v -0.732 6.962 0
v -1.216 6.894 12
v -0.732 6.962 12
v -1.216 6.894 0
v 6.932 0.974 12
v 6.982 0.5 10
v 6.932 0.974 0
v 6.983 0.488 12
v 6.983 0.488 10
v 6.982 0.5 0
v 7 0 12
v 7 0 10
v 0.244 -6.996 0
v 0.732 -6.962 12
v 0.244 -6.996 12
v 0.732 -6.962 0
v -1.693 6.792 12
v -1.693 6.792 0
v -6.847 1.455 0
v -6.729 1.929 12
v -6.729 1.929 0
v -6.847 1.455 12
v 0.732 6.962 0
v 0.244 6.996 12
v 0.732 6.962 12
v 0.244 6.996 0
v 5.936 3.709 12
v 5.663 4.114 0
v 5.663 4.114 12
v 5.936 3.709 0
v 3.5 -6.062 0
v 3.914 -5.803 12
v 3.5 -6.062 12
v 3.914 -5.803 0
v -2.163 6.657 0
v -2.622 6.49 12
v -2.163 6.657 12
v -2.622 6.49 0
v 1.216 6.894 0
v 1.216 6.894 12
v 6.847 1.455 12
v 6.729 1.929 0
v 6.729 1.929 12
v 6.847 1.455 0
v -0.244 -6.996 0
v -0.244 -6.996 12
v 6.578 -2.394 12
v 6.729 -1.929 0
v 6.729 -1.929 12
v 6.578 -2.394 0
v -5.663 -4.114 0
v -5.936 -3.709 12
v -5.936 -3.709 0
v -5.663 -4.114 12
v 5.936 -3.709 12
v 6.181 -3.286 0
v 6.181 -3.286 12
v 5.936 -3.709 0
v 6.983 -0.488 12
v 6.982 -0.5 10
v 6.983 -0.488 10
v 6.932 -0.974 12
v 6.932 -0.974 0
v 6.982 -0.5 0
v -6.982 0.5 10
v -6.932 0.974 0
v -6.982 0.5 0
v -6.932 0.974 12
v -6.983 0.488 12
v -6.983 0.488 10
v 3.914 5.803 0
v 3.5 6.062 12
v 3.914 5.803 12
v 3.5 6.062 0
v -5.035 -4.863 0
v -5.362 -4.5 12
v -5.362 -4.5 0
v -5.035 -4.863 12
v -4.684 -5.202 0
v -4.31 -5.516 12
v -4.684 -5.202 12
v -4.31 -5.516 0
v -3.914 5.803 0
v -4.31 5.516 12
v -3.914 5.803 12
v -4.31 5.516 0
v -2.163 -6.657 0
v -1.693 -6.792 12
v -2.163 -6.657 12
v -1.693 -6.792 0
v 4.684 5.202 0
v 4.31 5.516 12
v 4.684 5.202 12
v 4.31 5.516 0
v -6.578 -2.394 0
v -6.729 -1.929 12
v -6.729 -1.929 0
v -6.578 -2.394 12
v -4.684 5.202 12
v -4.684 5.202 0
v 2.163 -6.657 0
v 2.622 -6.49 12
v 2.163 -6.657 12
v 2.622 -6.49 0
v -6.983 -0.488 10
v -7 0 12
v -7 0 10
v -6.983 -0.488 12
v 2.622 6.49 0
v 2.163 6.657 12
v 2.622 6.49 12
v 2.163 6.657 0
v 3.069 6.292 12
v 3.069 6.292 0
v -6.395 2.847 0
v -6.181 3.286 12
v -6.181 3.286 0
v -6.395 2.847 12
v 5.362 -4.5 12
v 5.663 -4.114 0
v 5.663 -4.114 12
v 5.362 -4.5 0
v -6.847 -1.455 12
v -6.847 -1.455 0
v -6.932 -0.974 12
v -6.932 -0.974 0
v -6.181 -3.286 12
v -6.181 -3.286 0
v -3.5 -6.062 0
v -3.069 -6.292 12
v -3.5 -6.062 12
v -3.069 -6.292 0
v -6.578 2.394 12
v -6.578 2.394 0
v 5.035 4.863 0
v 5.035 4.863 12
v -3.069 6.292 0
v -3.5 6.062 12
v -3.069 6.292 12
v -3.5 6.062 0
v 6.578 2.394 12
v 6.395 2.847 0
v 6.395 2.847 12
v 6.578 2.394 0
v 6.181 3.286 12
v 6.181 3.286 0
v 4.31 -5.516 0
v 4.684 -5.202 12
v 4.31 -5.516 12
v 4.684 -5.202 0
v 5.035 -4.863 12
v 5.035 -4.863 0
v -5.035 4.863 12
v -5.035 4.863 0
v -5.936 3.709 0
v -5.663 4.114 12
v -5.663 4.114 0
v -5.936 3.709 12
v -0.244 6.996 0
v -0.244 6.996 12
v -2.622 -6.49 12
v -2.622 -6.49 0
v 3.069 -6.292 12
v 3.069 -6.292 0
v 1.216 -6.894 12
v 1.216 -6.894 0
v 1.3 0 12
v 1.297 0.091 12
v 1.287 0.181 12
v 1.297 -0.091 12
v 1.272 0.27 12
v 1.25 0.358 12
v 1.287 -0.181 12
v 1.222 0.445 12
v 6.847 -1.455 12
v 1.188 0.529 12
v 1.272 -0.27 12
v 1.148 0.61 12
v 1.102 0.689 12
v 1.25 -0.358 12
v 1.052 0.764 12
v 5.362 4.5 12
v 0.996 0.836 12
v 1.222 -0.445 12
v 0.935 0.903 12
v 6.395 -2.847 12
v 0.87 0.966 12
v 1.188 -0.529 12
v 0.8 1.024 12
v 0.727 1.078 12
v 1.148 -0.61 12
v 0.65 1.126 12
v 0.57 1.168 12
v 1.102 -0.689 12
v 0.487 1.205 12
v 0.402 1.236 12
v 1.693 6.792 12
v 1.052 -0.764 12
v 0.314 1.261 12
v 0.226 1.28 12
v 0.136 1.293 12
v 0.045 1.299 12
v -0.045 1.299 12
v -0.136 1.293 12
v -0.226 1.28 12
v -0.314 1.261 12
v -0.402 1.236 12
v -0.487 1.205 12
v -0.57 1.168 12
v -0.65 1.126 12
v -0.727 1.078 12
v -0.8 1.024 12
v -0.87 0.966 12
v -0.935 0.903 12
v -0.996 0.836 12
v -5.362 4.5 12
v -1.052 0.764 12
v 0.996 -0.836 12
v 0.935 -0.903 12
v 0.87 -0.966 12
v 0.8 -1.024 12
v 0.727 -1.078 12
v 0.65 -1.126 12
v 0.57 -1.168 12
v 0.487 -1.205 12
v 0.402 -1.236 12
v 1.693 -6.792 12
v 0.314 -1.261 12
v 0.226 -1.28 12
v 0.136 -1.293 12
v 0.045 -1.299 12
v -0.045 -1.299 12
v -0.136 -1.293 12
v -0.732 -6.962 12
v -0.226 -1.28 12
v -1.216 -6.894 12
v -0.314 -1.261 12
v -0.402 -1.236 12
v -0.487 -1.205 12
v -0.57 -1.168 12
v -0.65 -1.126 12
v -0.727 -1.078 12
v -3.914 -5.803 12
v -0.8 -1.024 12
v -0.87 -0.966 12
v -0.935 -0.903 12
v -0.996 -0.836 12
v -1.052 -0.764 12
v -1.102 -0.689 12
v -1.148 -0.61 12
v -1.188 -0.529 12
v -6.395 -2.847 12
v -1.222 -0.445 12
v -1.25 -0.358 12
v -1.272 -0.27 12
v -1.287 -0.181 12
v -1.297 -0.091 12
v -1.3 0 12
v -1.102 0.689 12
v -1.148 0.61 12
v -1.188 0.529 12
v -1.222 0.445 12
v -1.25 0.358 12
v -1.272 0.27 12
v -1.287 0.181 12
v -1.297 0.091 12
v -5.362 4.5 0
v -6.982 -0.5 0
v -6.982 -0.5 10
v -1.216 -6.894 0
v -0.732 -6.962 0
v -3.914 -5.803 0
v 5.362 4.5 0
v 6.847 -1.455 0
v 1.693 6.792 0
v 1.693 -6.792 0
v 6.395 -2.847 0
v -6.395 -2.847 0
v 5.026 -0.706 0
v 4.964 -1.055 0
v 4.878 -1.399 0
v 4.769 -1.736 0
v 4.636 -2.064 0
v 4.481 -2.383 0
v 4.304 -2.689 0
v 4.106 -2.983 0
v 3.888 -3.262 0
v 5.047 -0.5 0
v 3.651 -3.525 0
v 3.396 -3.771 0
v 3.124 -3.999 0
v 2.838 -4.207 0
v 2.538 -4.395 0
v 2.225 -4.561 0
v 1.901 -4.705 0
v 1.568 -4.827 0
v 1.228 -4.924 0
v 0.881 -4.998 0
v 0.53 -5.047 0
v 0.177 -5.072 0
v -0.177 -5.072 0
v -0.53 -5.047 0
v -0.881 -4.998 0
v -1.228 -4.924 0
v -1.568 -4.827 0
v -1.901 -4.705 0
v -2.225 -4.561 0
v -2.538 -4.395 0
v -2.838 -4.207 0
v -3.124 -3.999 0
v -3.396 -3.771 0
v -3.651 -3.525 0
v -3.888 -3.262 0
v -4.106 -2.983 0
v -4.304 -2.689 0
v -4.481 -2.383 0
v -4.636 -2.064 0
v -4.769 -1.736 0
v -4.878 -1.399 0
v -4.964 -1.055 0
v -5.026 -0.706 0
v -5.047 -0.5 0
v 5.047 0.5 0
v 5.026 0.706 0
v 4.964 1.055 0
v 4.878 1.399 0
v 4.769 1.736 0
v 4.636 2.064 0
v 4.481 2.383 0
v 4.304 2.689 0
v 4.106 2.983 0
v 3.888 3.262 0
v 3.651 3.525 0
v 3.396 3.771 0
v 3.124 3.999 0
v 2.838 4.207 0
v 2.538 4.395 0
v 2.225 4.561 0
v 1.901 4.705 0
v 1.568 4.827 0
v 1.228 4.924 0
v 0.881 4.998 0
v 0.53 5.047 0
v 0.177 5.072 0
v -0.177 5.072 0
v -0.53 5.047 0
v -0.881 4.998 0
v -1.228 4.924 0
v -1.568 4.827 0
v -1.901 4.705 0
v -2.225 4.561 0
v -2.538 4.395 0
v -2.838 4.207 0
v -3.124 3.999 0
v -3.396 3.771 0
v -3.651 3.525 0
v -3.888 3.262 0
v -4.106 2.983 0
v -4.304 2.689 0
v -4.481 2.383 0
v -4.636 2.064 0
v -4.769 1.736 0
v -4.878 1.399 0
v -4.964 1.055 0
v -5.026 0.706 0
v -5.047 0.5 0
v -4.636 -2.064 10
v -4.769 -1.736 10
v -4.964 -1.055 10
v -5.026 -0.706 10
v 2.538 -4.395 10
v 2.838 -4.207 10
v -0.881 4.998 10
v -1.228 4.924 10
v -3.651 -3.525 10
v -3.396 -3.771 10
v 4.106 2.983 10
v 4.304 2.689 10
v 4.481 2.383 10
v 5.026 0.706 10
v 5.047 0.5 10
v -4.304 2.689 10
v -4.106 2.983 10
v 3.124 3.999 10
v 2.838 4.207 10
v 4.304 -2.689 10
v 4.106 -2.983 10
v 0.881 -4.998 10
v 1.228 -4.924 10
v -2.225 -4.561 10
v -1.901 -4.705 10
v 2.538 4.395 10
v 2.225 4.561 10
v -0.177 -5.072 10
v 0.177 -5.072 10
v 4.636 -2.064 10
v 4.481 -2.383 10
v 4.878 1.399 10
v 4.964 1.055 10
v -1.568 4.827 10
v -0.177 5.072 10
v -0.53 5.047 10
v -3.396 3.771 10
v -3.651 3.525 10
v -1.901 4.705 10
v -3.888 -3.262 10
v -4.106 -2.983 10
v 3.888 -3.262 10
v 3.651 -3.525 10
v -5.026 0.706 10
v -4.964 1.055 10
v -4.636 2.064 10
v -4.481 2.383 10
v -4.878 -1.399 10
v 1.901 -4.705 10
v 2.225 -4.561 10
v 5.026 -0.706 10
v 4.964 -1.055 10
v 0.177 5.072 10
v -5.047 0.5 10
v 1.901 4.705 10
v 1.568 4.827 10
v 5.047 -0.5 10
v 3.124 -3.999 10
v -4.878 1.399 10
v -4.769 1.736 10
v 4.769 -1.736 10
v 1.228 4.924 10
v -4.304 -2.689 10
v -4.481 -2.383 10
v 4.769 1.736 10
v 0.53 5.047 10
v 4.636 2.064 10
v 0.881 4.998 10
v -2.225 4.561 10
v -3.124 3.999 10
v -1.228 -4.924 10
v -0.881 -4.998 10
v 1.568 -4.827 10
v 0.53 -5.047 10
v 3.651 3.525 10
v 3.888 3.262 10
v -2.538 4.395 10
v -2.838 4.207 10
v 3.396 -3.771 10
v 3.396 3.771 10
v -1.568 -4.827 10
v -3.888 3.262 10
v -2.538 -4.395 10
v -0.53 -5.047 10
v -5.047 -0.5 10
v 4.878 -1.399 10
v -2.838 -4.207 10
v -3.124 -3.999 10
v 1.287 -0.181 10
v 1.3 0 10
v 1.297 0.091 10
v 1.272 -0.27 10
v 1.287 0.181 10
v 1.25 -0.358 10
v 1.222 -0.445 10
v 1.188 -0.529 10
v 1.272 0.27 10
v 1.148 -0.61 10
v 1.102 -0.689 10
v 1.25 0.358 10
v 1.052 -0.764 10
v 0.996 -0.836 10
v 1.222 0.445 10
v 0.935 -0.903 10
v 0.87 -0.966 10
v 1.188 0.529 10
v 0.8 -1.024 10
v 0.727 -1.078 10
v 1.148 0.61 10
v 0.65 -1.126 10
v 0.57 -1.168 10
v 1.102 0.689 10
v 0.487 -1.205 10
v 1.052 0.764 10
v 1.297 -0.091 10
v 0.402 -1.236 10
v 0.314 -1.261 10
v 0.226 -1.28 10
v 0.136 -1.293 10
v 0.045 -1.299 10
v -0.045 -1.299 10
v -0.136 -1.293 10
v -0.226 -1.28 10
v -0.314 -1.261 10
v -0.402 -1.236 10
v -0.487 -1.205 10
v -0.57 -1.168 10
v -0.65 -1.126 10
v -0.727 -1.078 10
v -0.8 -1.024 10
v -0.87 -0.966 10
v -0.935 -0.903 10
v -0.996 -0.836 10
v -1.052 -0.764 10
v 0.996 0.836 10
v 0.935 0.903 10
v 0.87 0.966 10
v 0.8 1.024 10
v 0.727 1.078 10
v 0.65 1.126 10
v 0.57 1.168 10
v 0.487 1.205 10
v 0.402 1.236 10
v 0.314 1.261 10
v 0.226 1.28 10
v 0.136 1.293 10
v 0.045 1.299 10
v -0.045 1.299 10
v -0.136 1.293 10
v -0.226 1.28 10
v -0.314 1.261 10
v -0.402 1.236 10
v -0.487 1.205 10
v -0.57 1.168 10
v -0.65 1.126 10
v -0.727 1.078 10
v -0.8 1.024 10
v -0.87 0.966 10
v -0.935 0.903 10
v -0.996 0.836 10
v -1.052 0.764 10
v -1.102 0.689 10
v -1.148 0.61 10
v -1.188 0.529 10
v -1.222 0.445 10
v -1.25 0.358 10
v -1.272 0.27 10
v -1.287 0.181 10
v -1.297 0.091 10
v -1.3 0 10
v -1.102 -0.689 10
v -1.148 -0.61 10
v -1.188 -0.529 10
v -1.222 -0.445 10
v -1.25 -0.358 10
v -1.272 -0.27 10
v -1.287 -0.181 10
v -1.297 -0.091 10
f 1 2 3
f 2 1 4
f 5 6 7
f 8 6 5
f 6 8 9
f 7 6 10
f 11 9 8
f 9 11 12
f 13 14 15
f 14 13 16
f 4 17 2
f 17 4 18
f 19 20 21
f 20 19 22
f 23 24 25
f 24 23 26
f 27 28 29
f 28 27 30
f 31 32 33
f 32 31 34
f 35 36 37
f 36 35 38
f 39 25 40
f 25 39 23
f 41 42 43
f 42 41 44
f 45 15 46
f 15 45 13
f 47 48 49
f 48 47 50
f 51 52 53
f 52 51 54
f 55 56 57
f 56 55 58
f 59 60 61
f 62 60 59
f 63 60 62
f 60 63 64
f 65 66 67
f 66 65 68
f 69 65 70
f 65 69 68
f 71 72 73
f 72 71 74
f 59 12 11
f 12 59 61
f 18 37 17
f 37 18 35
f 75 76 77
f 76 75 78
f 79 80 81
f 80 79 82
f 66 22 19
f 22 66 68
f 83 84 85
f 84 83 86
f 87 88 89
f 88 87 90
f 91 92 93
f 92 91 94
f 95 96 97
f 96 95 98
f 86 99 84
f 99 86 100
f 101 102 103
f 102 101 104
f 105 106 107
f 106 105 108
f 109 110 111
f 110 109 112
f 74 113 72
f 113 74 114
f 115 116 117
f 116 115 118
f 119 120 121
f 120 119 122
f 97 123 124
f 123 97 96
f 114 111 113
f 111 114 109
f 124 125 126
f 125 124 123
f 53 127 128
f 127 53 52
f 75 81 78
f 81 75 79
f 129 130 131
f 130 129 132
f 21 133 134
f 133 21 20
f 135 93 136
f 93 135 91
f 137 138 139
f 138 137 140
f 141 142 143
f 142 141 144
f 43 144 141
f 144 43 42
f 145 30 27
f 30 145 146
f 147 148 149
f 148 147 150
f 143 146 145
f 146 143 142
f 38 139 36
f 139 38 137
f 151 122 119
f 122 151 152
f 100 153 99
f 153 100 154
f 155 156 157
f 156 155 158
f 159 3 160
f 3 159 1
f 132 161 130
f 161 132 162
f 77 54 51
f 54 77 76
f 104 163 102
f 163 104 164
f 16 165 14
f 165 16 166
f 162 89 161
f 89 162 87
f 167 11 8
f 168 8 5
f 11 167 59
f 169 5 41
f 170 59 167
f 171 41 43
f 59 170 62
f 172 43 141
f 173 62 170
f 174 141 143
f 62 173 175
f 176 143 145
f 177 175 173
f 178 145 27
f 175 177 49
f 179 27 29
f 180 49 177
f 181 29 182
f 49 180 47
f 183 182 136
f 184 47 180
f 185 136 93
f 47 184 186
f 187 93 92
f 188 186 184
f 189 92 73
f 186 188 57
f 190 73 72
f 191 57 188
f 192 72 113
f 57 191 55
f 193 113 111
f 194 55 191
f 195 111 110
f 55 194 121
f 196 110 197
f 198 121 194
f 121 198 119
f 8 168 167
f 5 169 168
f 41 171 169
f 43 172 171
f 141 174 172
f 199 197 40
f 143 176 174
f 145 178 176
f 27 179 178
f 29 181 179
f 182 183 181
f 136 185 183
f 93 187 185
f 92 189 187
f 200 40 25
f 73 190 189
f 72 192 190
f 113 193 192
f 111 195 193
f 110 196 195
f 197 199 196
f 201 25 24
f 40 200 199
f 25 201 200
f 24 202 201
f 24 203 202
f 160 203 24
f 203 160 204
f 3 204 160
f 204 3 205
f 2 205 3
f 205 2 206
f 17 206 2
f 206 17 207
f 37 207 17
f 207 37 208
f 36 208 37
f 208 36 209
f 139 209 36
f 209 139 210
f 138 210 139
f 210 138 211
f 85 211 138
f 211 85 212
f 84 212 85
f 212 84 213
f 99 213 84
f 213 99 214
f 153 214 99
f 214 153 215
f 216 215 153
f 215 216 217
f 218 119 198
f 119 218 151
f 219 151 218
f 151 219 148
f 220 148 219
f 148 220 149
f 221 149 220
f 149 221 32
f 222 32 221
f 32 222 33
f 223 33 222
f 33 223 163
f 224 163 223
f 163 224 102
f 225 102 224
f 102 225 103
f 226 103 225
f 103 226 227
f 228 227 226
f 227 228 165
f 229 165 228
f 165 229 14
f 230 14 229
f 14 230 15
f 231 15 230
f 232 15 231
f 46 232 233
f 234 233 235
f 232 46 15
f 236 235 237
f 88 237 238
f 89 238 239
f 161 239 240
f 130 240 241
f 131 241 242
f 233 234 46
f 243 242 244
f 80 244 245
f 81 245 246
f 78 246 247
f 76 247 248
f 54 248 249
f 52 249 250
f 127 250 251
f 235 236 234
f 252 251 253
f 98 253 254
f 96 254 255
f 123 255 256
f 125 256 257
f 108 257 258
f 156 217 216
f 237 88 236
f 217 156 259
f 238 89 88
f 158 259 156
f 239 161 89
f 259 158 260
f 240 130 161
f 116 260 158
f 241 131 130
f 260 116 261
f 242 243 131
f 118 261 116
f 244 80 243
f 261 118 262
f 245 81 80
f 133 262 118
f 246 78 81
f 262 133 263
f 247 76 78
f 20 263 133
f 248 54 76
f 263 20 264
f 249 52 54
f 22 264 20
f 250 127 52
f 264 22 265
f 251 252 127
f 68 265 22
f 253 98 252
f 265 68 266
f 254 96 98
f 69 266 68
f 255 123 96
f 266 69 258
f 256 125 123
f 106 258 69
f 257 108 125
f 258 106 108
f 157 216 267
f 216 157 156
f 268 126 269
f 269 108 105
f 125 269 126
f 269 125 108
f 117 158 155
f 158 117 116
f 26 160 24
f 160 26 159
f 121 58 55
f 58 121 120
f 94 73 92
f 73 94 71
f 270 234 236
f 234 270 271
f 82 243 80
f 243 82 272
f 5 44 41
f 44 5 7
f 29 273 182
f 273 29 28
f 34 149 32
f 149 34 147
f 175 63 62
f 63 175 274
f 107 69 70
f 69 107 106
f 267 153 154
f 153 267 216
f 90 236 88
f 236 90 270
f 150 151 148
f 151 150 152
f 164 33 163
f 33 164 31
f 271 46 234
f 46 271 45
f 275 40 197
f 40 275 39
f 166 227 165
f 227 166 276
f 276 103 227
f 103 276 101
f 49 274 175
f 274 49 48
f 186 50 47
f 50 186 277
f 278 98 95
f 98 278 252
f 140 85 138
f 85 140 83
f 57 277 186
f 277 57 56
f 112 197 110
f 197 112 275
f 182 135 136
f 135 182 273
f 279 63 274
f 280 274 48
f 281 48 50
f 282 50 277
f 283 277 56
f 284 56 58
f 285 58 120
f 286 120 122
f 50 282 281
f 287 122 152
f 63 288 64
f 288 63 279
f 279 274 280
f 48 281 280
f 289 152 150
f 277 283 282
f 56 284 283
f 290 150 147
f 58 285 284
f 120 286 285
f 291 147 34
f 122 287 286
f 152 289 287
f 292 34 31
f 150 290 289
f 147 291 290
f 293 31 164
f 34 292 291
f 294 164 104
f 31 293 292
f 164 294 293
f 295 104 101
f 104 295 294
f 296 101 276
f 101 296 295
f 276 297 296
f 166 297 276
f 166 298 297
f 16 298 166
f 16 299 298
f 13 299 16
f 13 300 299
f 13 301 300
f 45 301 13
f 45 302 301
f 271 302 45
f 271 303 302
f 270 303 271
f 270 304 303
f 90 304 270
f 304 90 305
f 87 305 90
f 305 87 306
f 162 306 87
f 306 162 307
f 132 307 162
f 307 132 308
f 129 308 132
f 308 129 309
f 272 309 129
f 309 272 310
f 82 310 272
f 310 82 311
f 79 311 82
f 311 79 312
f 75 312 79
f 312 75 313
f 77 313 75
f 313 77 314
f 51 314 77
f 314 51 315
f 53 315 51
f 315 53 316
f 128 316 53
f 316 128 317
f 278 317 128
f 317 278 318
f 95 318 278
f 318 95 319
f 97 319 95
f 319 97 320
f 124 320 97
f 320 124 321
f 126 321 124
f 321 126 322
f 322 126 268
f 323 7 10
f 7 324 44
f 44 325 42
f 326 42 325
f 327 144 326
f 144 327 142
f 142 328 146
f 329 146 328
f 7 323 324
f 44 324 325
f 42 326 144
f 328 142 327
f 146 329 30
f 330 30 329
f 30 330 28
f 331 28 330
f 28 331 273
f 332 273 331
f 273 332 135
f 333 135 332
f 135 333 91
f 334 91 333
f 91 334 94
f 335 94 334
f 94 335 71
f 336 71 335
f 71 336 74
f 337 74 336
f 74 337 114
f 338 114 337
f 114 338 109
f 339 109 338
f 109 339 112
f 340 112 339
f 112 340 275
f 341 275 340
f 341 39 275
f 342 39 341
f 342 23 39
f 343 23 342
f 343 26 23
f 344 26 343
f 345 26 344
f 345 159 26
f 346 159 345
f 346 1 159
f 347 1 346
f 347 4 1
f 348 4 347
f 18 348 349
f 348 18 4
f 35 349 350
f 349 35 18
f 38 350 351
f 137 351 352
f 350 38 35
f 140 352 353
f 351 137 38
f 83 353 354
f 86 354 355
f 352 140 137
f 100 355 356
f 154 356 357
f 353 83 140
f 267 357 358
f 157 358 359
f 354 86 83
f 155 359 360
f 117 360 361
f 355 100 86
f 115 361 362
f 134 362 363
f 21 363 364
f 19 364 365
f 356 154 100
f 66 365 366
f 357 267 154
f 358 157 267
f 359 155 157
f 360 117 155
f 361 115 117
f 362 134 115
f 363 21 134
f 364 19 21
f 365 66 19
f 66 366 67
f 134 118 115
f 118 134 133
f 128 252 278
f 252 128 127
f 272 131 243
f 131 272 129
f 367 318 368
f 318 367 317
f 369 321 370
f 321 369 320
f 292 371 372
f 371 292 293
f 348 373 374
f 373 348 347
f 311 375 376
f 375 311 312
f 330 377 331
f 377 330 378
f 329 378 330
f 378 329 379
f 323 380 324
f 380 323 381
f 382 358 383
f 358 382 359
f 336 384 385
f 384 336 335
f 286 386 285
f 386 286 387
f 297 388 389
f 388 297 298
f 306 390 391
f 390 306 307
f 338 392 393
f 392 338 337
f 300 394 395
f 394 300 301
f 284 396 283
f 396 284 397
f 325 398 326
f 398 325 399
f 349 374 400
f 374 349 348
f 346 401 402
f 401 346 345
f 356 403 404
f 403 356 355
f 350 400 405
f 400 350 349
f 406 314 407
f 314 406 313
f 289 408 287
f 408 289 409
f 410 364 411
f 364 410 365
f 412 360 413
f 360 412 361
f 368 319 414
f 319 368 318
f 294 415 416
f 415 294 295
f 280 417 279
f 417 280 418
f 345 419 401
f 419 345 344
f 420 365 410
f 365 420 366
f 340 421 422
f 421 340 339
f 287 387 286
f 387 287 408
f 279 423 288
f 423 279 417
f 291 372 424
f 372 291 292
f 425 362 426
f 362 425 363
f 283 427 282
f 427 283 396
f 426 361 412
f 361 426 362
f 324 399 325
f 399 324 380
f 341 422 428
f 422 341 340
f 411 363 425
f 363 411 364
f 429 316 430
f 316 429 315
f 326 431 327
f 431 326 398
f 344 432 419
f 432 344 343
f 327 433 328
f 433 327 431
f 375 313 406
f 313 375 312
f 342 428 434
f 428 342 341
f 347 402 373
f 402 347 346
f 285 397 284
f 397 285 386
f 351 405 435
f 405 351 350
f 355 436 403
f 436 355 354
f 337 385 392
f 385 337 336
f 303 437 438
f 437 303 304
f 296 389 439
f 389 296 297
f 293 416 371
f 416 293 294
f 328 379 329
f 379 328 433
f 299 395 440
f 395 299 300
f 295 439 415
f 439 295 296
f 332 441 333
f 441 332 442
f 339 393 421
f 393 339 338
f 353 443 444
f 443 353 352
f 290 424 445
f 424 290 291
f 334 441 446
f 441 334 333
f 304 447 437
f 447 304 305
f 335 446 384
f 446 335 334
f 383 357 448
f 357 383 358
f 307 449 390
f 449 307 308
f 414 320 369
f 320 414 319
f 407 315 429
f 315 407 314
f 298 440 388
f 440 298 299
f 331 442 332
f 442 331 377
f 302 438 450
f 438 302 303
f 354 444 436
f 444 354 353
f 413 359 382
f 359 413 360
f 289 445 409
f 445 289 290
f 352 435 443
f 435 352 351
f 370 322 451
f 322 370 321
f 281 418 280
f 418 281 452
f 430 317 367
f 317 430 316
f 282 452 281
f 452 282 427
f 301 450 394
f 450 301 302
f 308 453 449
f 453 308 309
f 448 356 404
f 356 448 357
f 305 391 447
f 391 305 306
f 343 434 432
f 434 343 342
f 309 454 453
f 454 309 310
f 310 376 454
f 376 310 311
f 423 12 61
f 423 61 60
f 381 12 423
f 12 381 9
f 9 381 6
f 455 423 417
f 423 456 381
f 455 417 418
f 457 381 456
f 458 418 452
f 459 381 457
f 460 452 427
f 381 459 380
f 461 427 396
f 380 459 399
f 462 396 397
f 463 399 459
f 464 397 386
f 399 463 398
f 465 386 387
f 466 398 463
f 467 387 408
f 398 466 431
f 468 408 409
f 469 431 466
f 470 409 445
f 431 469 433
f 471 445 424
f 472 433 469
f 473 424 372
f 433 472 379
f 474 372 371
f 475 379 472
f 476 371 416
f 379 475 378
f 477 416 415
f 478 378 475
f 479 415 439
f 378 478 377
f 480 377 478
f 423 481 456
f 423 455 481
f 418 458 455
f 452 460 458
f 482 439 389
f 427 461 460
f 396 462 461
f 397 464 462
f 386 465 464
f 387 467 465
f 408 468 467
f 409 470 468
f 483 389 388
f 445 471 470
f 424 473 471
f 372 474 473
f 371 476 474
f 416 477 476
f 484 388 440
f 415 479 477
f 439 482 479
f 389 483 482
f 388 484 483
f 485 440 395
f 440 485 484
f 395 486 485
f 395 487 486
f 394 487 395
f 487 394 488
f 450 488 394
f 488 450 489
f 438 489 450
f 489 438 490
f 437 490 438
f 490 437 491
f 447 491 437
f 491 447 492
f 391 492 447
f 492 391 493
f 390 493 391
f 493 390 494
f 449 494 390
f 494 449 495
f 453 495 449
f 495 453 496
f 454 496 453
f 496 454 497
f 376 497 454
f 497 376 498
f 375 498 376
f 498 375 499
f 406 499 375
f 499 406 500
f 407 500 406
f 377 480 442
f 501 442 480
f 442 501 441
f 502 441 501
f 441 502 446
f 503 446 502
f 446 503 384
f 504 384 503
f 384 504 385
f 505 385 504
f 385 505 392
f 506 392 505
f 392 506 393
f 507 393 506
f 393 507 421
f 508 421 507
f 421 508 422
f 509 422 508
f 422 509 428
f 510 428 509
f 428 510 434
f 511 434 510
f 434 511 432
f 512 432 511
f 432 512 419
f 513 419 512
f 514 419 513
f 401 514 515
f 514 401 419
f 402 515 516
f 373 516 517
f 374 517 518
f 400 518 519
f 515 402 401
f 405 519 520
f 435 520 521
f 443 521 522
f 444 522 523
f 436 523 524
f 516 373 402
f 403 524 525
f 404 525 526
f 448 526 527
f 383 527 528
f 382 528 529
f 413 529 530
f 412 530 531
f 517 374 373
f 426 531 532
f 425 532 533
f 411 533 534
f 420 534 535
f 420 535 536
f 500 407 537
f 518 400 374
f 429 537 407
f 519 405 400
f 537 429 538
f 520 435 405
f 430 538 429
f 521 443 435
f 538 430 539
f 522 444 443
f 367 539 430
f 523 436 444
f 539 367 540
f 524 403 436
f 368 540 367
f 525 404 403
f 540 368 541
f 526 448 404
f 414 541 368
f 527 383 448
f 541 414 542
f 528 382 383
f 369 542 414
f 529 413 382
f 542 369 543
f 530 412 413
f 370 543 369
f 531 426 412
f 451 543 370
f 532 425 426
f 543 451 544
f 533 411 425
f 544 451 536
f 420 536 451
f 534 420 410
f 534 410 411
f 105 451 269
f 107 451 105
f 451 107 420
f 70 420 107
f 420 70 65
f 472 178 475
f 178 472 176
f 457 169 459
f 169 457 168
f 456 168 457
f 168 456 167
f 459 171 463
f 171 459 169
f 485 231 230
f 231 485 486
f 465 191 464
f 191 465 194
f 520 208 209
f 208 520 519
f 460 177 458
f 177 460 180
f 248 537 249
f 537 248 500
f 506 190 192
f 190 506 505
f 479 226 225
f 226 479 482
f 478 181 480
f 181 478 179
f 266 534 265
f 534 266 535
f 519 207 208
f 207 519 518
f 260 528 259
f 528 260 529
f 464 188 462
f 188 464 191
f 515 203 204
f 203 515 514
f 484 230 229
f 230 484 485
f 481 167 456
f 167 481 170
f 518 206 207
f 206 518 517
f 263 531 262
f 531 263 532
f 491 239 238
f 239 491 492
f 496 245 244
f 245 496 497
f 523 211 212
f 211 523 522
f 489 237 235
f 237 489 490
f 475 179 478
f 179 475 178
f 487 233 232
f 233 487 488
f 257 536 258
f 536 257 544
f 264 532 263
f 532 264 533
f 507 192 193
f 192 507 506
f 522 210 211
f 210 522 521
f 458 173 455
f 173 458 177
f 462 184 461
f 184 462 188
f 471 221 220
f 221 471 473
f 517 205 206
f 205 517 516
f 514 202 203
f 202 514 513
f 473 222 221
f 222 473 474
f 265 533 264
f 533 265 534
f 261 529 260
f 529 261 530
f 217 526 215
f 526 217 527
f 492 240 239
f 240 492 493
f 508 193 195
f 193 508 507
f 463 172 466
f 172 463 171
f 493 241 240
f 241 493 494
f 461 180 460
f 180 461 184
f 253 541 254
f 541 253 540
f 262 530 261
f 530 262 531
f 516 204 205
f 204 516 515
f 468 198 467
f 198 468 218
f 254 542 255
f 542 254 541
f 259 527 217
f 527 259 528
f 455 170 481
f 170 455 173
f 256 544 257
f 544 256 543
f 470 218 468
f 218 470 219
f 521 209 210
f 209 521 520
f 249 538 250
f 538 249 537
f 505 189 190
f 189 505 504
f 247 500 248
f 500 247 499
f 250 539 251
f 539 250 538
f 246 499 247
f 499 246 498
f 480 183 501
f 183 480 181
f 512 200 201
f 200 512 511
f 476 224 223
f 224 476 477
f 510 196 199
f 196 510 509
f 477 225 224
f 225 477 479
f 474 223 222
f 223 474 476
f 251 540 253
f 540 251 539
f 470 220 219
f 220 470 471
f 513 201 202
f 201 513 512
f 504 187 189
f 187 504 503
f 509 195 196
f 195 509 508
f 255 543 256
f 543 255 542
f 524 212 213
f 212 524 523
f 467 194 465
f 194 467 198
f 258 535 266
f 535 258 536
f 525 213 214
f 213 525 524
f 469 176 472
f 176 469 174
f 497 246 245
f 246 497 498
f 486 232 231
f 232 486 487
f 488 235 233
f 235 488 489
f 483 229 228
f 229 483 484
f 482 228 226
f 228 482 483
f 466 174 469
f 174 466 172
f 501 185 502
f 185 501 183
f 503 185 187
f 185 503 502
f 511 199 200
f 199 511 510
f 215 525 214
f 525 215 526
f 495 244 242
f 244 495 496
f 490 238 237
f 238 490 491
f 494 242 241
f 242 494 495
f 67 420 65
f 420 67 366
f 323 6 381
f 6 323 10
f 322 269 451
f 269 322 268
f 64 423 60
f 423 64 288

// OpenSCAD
$fn = 90;

outterDiameter = 14;
innerHeight = 10;
difference(){
	cylinder(d=outterDiameter, h=12);
	#cylinder(d=10.15, h=innerHeight);
	#cylinder(d=2.6, h=12);
	translate([0, 0, innerHeight/2])
		cube([outterDiameter, 1, innerHeight], center = true);
}
